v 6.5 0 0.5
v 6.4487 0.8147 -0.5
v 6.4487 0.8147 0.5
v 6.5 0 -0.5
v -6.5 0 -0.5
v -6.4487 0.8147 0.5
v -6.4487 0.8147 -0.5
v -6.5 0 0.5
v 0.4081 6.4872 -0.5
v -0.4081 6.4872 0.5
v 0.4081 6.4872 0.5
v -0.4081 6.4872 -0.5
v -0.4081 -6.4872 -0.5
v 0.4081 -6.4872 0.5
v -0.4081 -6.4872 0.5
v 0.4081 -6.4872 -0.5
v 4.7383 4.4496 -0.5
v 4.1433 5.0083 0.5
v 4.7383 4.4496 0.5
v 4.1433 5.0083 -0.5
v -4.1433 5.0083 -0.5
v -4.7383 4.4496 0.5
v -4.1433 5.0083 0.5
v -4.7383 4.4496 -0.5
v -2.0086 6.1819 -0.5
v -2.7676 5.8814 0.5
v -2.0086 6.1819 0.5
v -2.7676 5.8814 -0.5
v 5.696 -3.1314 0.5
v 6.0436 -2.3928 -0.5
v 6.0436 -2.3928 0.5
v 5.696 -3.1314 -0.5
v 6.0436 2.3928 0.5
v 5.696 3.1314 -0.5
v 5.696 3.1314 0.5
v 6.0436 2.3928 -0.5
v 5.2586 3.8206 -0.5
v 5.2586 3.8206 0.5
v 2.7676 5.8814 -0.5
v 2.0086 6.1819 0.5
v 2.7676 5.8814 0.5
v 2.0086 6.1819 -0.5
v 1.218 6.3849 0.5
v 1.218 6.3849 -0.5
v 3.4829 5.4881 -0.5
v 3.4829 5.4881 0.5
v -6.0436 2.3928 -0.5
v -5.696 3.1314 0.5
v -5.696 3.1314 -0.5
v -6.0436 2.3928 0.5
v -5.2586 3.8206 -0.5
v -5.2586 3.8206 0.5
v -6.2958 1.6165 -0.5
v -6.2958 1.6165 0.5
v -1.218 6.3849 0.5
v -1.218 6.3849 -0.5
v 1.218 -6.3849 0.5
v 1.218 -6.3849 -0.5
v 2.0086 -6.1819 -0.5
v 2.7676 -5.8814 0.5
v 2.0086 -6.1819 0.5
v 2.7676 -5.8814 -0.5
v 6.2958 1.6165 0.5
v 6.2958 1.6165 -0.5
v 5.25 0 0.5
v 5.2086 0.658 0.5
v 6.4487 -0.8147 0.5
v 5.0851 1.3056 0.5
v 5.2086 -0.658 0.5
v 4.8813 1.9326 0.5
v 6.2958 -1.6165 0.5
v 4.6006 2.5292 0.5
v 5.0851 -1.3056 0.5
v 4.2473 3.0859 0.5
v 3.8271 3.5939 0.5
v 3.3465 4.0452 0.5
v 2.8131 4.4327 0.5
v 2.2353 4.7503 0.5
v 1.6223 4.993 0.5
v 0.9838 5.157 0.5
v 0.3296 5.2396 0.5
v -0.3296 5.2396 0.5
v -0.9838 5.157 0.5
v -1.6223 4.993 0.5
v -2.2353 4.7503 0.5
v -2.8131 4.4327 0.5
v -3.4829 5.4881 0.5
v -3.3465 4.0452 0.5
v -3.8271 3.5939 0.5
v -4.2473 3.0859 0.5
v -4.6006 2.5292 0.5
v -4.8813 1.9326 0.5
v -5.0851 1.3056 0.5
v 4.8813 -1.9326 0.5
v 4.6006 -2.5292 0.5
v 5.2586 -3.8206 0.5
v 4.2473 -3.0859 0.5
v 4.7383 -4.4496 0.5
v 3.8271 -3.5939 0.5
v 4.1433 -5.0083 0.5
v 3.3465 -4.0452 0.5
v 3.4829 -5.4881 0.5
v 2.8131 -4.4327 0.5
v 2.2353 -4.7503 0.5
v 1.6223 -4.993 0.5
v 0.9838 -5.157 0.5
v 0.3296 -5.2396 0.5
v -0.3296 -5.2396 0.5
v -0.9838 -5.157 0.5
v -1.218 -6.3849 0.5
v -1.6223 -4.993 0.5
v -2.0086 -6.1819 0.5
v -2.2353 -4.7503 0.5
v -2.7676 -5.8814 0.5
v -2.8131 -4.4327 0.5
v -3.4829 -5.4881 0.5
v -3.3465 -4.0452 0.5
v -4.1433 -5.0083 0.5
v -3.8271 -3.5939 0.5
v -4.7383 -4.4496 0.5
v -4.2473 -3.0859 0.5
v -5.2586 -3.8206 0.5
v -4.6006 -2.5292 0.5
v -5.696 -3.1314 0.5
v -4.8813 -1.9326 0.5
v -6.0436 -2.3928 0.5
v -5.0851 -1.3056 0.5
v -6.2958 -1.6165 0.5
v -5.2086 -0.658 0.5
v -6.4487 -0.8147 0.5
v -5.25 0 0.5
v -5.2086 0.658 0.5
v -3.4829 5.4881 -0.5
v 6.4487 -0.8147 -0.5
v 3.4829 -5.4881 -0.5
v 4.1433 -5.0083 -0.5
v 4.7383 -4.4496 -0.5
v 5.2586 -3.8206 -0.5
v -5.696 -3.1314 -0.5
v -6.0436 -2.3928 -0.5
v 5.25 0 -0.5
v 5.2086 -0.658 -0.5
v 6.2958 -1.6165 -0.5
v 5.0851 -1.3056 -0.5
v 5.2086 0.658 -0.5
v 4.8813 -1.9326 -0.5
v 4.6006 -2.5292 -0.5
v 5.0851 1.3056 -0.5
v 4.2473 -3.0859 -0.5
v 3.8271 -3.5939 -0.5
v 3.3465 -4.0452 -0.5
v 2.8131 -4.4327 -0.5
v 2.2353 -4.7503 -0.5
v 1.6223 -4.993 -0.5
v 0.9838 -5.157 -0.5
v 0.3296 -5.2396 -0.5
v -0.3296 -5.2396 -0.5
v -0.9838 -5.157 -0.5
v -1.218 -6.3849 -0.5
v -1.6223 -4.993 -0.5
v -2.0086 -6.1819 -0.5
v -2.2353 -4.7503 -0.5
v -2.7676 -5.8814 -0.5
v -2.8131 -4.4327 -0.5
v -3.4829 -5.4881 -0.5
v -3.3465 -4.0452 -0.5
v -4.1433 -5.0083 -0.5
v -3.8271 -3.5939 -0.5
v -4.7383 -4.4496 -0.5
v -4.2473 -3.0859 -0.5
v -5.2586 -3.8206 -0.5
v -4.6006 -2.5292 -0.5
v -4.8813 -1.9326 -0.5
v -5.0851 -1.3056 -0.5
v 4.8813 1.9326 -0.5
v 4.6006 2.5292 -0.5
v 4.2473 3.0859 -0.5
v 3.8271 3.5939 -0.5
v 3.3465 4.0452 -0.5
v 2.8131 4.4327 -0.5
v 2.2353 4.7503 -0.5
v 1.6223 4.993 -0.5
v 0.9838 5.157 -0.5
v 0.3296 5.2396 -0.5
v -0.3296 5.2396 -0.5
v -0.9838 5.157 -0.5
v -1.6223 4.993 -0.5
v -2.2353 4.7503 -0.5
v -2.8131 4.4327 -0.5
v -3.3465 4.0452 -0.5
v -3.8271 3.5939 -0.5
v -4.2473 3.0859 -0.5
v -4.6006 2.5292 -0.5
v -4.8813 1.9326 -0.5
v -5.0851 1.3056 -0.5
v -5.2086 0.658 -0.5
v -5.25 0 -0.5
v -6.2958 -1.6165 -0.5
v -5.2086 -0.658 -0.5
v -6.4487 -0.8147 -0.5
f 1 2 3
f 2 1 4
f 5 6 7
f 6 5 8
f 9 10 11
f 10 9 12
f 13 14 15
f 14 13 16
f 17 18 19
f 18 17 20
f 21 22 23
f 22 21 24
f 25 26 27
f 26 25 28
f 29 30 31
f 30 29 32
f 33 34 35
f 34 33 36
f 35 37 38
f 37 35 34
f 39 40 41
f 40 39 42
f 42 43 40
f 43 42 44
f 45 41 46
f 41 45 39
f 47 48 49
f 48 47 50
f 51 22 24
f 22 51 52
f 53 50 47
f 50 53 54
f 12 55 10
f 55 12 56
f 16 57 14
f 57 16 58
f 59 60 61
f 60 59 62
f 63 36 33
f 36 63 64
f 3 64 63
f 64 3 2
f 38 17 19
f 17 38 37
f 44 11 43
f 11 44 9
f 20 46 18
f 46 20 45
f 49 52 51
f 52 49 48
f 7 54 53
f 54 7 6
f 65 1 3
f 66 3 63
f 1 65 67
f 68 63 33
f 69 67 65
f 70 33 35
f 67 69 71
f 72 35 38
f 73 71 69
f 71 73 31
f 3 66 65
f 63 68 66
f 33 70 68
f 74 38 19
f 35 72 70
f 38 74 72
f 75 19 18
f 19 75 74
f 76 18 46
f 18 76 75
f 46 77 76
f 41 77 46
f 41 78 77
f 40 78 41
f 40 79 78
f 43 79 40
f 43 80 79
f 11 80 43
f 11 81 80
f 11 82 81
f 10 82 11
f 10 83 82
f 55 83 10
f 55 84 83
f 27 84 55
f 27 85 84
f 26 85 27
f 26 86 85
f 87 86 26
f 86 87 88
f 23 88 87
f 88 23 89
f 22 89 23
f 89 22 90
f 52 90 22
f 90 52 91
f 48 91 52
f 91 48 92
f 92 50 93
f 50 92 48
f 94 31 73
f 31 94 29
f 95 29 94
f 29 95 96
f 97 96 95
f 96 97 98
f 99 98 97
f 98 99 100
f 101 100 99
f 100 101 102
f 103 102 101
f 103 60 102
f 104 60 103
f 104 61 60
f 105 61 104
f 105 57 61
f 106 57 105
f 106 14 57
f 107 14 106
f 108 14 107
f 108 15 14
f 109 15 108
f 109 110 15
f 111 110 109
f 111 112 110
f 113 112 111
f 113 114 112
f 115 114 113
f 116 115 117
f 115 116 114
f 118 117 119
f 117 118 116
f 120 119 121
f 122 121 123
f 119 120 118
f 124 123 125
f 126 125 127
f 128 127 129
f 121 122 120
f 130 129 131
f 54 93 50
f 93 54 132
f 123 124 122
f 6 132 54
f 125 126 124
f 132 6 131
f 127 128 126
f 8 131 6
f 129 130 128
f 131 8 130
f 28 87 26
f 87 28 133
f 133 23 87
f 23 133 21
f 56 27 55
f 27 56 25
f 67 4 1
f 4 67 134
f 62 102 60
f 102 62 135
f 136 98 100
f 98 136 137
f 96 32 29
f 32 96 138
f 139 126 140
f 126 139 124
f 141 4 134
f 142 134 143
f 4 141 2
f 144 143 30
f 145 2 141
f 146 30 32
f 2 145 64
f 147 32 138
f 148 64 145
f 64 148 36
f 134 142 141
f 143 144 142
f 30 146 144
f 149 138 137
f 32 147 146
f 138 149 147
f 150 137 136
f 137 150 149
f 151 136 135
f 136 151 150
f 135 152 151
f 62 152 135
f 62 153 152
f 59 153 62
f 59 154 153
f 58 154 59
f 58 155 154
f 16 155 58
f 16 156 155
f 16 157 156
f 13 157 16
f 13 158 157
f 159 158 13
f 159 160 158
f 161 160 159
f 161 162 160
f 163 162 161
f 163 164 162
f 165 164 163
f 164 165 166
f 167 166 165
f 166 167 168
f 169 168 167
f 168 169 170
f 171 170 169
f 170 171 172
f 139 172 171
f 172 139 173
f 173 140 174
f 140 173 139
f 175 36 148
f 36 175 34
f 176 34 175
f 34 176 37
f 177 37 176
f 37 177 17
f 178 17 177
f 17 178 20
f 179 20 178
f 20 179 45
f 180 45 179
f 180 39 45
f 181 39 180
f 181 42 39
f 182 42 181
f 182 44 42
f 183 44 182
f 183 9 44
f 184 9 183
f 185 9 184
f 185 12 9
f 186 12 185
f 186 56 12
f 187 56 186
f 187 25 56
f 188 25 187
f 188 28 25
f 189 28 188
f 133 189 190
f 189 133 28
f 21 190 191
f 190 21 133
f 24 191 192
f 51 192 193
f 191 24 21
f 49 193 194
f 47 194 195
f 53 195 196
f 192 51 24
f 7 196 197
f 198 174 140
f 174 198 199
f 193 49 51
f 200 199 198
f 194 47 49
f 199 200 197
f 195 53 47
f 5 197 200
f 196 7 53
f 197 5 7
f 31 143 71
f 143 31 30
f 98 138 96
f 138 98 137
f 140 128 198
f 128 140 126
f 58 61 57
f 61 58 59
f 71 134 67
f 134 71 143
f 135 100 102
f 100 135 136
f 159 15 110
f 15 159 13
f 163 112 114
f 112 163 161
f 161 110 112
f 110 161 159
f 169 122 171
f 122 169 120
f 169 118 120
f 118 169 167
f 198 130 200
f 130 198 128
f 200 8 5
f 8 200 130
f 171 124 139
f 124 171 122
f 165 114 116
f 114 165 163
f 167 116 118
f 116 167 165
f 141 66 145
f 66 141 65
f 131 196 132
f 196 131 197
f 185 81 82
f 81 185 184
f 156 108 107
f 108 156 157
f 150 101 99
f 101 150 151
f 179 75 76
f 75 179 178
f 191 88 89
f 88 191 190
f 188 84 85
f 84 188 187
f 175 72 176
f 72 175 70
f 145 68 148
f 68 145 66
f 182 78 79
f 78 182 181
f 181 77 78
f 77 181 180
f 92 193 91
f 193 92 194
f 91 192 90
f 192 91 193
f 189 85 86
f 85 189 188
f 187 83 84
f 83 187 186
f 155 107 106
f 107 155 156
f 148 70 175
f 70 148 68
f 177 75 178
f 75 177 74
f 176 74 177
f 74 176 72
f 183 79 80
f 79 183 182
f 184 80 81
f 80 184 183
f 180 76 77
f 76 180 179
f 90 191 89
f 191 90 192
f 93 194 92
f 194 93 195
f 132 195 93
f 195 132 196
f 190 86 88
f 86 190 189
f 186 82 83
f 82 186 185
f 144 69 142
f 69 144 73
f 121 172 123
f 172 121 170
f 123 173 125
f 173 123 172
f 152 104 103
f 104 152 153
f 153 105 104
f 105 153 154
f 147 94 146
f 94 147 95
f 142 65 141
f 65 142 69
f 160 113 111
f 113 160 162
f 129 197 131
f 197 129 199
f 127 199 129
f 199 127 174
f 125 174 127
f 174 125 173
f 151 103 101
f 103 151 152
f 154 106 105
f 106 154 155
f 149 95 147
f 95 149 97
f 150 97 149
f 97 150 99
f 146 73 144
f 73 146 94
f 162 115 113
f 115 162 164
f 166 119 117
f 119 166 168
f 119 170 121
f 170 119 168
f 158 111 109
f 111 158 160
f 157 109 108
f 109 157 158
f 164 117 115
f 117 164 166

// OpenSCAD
$fn = 50;


difference() {
	union() {
		translate(v = [0, 0, -0.5000000000]) {
			cylinder(h = 1, r = 6.5000000000);
		}
	}
	union() {
		translate(v = [0, 0, -100.0000000000]) {
			cylinder(h = 200, r = 5.2500000000);
		}
	}
}
